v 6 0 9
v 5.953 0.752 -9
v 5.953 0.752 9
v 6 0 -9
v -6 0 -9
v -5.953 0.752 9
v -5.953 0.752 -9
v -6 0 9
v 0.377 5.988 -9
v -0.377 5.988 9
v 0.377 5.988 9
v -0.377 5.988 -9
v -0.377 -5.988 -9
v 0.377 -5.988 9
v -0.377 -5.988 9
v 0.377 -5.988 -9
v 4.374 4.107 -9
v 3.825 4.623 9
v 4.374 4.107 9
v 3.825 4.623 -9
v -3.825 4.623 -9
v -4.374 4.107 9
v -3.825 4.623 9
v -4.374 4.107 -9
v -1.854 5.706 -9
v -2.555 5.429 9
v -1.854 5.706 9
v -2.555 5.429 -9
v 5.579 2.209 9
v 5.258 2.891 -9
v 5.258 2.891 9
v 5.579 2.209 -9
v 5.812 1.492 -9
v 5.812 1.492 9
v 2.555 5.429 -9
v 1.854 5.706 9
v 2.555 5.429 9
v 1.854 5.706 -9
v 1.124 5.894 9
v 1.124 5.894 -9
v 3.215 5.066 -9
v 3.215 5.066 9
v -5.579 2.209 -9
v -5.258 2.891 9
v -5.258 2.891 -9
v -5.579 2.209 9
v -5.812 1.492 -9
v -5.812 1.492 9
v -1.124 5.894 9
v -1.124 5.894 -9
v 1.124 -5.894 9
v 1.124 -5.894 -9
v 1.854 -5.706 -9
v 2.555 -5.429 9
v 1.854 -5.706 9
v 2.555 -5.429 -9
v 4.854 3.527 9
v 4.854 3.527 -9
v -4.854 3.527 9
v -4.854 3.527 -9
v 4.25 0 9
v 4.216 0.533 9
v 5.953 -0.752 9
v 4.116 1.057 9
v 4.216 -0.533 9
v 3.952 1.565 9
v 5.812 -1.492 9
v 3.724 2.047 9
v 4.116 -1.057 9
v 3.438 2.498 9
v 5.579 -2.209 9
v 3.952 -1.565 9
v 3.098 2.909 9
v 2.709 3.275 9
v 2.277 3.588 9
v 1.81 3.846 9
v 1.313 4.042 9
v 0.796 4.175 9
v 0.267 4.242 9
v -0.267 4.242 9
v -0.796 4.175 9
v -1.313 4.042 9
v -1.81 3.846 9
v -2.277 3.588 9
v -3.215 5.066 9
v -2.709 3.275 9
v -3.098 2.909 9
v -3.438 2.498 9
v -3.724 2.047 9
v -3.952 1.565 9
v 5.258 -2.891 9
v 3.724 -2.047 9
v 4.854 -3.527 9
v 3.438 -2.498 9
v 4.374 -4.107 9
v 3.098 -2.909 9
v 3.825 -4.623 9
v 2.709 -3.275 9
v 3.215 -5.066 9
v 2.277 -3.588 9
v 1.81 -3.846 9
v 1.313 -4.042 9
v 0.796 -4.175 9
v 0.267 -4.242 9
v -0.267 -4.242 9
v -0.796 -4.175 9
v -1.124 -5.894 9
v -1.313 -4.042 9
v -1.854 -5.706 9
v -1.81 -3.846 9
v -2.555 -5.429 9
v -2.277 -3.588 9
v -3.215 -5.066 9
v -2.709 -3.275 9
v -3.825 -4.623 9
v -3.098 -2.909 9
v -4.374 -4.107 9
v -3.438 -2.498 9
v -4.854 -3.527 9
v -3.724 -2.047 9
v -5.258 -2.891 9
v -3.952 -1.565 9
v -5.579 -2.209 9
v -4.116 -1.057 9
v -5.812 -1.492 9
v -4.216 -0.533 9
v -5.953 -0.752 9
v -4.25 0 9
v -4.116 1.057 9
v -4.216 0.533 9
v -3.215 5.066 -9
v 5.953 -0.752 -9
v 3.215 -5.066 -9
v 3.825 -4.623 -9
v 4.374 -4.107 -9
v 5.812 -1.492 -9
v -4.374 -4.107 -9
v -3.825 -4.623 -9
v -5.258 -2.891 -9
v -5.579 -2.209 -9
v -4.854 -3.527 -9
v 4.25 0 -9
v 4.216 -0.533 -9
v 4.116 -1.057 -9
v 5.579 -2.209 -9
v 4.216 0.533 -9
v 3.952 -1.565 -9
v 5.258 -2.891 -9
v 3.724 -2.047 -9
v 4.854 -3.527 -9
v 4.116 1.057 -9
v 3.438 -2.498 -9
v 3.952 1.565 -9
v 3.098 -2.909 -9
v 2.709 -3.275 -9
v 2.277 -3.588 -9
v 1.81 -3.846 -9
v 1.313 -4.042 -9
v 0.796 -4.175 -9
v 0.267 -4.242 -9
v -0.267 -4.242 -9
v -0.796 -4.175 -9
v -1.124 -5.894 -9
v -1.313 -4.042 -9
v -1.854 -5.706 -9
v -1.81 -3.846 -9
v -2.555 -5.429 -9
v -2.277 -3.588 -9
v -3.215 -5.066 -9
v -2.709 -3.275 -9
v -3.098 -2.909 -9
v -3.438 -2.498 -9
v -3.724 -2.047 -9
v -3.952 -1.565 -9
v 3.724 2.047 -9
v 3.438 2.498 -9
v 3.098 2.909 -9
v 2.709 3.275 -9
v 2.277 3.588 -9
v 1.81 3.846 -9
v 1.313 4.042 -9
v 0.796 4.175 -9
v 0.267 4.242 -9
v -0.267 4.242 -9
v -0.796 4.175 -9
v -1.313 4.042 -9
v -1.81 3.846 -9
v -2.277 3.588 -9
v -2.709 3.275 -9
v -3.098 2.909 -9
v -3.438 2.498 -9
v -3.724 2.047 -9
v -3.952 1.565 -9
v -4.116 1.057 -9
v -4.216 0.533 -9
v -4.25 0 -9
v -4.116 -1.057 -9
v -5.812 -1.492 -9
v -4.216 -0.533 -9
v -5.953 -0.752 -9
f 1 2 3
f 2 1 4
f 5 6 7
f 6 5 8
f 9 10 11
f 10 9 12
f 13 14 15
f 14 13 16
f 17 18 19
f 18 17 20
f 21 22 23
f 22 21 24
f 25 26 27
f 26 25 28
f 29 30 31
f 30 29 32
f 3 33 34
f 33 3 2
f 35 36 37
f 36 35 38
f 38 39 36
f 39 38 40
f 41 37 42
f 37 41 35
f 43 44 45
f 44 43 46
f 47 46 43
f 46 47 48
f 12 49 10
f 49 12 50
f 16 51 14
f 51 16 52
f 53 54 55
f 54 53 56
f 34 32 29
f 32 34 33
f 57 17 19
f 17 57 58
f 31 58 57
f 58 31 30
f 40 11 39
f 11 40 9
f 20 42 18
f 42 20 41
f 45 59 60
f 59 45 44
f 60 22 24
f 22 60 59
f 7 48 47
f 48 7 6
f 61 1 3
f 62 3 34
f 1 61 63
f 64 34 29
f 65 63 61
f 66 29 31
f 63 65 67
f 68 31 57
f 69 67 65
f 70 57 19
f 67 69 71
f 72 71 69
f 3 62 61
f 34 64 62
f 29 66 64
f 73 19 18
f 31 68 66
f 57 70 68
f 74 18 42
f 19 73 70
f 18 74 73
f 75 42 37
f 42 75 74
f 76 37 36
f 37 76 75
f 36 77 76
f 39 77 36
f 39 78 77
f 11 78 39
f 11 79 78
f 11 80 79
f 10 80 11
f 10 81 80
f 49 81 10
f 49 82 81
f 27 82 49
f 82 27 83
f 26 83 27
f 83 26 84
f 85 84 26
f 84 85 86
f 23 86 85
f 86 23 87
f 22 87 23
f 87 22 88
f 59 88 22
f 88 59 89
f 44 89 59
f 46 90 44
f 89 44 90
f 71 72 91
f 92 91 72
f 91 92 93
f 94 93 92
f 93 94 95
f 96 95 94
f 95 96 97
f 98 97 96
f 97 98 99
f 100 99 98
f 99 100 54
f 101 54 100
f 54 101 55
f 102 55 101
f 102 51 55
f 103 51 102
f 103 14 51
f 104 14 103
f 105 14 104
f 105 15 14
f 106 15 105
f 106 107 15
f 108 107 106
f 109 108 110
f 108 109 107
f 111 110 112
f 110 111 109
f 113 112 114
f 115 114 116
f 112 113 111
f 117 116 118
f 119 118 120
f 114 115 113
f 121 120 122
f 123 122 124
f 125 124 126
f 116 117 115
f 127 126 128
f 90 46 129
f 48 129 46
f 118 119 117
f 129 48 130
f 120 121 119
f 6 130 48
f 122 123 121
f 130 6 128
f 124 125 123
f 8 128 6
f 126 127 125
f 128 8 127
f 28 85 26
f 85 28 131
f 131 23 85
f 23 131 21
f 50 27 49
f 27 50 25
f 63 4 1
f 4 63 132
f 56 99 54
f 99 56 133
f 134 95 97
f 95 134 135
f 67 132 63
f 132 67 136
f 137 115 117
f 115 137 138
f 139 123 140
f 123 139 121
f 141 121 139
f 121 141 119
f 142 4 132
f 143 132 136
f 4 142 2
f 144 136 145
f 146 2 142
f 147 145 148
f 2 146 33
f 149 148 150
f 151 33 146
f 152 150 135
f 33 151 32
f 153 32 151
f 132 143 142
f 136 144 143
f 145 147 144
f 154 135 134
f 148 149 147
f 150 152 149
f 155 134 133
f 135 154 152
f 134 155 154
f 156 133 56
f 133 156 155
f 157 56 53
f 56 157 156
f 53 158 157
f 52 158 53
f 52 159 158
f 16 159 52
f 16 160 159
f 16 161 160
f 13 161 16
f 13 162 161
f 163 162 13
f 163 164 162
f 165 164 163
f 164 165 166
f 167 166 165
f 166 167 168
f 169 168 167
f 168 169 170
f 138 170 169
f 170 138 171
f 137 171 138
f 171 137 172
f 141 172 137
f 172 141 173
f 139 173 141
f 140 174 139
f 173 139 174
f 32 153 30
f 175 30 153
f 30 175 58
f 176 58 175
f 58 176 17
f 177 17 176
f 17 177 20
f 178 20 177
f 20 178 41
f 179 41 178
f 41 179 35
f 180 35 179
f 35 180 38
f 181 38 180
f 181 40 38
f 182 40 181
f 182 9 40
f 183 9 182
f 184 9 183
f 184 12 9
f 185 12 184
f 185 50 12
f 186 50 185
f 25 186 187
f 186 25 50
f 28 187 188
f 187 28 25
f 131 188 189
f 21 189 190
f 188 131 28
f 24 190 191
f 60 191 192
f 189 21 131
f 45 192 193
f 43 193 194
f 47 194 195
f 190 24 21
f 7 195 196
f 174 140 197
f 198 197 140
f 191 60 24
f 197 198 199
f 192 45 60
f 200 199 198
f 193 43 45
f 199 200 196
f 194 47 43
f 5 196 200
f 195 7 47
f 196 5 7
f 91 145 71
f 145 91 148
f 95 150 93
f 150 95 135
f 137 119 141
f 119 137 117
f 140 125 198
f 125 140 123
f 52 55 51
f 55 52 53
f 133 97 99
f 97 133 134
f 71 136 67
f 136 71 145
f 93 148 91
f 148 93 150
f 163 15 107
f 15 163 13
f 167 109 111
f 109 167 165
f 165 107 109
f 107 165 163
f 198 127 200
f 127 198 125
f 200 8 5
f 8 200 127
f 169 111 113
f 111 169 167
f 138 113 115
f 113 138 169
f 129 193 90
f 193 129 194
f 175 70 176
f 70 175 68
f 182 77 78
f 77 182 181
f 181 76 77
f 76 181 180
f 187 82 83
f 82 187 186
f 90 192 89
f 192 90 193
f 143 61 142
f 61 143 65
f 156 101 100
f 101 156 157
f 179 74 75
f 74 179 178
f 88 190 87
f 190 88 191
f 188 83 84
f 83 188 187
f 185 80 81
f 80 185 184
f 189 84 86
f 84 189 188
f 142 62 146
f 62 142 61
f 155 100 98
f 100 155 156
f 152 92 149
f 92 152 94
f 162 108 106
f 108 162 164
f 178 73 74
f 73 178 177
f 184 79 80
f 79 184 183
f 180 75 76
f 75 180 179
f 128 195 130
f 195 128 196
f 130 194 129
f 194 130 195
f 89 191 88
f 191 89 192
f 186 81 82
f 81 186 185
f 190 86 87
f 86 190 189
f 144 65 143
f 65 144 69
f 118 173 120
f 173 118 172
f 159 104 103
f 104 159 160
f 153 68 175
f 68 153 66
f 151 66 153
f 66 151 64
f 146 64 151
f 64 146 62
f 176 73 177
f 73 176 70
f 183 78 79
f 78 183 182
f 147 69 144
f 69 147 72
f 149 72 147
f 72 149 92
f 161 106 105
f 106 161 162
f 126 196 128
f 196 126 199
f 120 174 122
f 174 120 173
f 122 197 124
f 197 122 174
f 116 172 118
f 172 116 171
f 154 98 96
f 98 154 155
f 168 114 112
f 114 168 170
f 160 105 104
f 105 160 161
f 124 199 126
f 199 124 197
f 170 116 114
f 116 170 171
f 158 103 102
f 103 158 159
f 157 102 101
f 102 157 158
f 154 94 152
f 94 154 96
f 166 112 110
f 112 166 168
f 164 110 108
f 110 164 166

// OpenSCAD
$fn = 50;


difference() {
	union() {
		translate(v = [0, 0, -9.0000000000]) {
			cylinder(h = 18, r = 6.0000000000);
		}
	}
	union() {
		translate(v = [0, 0, -100.0000000000]) {
			cylinder(h = 200, r = 4.2500000000);
		}
	}
}
